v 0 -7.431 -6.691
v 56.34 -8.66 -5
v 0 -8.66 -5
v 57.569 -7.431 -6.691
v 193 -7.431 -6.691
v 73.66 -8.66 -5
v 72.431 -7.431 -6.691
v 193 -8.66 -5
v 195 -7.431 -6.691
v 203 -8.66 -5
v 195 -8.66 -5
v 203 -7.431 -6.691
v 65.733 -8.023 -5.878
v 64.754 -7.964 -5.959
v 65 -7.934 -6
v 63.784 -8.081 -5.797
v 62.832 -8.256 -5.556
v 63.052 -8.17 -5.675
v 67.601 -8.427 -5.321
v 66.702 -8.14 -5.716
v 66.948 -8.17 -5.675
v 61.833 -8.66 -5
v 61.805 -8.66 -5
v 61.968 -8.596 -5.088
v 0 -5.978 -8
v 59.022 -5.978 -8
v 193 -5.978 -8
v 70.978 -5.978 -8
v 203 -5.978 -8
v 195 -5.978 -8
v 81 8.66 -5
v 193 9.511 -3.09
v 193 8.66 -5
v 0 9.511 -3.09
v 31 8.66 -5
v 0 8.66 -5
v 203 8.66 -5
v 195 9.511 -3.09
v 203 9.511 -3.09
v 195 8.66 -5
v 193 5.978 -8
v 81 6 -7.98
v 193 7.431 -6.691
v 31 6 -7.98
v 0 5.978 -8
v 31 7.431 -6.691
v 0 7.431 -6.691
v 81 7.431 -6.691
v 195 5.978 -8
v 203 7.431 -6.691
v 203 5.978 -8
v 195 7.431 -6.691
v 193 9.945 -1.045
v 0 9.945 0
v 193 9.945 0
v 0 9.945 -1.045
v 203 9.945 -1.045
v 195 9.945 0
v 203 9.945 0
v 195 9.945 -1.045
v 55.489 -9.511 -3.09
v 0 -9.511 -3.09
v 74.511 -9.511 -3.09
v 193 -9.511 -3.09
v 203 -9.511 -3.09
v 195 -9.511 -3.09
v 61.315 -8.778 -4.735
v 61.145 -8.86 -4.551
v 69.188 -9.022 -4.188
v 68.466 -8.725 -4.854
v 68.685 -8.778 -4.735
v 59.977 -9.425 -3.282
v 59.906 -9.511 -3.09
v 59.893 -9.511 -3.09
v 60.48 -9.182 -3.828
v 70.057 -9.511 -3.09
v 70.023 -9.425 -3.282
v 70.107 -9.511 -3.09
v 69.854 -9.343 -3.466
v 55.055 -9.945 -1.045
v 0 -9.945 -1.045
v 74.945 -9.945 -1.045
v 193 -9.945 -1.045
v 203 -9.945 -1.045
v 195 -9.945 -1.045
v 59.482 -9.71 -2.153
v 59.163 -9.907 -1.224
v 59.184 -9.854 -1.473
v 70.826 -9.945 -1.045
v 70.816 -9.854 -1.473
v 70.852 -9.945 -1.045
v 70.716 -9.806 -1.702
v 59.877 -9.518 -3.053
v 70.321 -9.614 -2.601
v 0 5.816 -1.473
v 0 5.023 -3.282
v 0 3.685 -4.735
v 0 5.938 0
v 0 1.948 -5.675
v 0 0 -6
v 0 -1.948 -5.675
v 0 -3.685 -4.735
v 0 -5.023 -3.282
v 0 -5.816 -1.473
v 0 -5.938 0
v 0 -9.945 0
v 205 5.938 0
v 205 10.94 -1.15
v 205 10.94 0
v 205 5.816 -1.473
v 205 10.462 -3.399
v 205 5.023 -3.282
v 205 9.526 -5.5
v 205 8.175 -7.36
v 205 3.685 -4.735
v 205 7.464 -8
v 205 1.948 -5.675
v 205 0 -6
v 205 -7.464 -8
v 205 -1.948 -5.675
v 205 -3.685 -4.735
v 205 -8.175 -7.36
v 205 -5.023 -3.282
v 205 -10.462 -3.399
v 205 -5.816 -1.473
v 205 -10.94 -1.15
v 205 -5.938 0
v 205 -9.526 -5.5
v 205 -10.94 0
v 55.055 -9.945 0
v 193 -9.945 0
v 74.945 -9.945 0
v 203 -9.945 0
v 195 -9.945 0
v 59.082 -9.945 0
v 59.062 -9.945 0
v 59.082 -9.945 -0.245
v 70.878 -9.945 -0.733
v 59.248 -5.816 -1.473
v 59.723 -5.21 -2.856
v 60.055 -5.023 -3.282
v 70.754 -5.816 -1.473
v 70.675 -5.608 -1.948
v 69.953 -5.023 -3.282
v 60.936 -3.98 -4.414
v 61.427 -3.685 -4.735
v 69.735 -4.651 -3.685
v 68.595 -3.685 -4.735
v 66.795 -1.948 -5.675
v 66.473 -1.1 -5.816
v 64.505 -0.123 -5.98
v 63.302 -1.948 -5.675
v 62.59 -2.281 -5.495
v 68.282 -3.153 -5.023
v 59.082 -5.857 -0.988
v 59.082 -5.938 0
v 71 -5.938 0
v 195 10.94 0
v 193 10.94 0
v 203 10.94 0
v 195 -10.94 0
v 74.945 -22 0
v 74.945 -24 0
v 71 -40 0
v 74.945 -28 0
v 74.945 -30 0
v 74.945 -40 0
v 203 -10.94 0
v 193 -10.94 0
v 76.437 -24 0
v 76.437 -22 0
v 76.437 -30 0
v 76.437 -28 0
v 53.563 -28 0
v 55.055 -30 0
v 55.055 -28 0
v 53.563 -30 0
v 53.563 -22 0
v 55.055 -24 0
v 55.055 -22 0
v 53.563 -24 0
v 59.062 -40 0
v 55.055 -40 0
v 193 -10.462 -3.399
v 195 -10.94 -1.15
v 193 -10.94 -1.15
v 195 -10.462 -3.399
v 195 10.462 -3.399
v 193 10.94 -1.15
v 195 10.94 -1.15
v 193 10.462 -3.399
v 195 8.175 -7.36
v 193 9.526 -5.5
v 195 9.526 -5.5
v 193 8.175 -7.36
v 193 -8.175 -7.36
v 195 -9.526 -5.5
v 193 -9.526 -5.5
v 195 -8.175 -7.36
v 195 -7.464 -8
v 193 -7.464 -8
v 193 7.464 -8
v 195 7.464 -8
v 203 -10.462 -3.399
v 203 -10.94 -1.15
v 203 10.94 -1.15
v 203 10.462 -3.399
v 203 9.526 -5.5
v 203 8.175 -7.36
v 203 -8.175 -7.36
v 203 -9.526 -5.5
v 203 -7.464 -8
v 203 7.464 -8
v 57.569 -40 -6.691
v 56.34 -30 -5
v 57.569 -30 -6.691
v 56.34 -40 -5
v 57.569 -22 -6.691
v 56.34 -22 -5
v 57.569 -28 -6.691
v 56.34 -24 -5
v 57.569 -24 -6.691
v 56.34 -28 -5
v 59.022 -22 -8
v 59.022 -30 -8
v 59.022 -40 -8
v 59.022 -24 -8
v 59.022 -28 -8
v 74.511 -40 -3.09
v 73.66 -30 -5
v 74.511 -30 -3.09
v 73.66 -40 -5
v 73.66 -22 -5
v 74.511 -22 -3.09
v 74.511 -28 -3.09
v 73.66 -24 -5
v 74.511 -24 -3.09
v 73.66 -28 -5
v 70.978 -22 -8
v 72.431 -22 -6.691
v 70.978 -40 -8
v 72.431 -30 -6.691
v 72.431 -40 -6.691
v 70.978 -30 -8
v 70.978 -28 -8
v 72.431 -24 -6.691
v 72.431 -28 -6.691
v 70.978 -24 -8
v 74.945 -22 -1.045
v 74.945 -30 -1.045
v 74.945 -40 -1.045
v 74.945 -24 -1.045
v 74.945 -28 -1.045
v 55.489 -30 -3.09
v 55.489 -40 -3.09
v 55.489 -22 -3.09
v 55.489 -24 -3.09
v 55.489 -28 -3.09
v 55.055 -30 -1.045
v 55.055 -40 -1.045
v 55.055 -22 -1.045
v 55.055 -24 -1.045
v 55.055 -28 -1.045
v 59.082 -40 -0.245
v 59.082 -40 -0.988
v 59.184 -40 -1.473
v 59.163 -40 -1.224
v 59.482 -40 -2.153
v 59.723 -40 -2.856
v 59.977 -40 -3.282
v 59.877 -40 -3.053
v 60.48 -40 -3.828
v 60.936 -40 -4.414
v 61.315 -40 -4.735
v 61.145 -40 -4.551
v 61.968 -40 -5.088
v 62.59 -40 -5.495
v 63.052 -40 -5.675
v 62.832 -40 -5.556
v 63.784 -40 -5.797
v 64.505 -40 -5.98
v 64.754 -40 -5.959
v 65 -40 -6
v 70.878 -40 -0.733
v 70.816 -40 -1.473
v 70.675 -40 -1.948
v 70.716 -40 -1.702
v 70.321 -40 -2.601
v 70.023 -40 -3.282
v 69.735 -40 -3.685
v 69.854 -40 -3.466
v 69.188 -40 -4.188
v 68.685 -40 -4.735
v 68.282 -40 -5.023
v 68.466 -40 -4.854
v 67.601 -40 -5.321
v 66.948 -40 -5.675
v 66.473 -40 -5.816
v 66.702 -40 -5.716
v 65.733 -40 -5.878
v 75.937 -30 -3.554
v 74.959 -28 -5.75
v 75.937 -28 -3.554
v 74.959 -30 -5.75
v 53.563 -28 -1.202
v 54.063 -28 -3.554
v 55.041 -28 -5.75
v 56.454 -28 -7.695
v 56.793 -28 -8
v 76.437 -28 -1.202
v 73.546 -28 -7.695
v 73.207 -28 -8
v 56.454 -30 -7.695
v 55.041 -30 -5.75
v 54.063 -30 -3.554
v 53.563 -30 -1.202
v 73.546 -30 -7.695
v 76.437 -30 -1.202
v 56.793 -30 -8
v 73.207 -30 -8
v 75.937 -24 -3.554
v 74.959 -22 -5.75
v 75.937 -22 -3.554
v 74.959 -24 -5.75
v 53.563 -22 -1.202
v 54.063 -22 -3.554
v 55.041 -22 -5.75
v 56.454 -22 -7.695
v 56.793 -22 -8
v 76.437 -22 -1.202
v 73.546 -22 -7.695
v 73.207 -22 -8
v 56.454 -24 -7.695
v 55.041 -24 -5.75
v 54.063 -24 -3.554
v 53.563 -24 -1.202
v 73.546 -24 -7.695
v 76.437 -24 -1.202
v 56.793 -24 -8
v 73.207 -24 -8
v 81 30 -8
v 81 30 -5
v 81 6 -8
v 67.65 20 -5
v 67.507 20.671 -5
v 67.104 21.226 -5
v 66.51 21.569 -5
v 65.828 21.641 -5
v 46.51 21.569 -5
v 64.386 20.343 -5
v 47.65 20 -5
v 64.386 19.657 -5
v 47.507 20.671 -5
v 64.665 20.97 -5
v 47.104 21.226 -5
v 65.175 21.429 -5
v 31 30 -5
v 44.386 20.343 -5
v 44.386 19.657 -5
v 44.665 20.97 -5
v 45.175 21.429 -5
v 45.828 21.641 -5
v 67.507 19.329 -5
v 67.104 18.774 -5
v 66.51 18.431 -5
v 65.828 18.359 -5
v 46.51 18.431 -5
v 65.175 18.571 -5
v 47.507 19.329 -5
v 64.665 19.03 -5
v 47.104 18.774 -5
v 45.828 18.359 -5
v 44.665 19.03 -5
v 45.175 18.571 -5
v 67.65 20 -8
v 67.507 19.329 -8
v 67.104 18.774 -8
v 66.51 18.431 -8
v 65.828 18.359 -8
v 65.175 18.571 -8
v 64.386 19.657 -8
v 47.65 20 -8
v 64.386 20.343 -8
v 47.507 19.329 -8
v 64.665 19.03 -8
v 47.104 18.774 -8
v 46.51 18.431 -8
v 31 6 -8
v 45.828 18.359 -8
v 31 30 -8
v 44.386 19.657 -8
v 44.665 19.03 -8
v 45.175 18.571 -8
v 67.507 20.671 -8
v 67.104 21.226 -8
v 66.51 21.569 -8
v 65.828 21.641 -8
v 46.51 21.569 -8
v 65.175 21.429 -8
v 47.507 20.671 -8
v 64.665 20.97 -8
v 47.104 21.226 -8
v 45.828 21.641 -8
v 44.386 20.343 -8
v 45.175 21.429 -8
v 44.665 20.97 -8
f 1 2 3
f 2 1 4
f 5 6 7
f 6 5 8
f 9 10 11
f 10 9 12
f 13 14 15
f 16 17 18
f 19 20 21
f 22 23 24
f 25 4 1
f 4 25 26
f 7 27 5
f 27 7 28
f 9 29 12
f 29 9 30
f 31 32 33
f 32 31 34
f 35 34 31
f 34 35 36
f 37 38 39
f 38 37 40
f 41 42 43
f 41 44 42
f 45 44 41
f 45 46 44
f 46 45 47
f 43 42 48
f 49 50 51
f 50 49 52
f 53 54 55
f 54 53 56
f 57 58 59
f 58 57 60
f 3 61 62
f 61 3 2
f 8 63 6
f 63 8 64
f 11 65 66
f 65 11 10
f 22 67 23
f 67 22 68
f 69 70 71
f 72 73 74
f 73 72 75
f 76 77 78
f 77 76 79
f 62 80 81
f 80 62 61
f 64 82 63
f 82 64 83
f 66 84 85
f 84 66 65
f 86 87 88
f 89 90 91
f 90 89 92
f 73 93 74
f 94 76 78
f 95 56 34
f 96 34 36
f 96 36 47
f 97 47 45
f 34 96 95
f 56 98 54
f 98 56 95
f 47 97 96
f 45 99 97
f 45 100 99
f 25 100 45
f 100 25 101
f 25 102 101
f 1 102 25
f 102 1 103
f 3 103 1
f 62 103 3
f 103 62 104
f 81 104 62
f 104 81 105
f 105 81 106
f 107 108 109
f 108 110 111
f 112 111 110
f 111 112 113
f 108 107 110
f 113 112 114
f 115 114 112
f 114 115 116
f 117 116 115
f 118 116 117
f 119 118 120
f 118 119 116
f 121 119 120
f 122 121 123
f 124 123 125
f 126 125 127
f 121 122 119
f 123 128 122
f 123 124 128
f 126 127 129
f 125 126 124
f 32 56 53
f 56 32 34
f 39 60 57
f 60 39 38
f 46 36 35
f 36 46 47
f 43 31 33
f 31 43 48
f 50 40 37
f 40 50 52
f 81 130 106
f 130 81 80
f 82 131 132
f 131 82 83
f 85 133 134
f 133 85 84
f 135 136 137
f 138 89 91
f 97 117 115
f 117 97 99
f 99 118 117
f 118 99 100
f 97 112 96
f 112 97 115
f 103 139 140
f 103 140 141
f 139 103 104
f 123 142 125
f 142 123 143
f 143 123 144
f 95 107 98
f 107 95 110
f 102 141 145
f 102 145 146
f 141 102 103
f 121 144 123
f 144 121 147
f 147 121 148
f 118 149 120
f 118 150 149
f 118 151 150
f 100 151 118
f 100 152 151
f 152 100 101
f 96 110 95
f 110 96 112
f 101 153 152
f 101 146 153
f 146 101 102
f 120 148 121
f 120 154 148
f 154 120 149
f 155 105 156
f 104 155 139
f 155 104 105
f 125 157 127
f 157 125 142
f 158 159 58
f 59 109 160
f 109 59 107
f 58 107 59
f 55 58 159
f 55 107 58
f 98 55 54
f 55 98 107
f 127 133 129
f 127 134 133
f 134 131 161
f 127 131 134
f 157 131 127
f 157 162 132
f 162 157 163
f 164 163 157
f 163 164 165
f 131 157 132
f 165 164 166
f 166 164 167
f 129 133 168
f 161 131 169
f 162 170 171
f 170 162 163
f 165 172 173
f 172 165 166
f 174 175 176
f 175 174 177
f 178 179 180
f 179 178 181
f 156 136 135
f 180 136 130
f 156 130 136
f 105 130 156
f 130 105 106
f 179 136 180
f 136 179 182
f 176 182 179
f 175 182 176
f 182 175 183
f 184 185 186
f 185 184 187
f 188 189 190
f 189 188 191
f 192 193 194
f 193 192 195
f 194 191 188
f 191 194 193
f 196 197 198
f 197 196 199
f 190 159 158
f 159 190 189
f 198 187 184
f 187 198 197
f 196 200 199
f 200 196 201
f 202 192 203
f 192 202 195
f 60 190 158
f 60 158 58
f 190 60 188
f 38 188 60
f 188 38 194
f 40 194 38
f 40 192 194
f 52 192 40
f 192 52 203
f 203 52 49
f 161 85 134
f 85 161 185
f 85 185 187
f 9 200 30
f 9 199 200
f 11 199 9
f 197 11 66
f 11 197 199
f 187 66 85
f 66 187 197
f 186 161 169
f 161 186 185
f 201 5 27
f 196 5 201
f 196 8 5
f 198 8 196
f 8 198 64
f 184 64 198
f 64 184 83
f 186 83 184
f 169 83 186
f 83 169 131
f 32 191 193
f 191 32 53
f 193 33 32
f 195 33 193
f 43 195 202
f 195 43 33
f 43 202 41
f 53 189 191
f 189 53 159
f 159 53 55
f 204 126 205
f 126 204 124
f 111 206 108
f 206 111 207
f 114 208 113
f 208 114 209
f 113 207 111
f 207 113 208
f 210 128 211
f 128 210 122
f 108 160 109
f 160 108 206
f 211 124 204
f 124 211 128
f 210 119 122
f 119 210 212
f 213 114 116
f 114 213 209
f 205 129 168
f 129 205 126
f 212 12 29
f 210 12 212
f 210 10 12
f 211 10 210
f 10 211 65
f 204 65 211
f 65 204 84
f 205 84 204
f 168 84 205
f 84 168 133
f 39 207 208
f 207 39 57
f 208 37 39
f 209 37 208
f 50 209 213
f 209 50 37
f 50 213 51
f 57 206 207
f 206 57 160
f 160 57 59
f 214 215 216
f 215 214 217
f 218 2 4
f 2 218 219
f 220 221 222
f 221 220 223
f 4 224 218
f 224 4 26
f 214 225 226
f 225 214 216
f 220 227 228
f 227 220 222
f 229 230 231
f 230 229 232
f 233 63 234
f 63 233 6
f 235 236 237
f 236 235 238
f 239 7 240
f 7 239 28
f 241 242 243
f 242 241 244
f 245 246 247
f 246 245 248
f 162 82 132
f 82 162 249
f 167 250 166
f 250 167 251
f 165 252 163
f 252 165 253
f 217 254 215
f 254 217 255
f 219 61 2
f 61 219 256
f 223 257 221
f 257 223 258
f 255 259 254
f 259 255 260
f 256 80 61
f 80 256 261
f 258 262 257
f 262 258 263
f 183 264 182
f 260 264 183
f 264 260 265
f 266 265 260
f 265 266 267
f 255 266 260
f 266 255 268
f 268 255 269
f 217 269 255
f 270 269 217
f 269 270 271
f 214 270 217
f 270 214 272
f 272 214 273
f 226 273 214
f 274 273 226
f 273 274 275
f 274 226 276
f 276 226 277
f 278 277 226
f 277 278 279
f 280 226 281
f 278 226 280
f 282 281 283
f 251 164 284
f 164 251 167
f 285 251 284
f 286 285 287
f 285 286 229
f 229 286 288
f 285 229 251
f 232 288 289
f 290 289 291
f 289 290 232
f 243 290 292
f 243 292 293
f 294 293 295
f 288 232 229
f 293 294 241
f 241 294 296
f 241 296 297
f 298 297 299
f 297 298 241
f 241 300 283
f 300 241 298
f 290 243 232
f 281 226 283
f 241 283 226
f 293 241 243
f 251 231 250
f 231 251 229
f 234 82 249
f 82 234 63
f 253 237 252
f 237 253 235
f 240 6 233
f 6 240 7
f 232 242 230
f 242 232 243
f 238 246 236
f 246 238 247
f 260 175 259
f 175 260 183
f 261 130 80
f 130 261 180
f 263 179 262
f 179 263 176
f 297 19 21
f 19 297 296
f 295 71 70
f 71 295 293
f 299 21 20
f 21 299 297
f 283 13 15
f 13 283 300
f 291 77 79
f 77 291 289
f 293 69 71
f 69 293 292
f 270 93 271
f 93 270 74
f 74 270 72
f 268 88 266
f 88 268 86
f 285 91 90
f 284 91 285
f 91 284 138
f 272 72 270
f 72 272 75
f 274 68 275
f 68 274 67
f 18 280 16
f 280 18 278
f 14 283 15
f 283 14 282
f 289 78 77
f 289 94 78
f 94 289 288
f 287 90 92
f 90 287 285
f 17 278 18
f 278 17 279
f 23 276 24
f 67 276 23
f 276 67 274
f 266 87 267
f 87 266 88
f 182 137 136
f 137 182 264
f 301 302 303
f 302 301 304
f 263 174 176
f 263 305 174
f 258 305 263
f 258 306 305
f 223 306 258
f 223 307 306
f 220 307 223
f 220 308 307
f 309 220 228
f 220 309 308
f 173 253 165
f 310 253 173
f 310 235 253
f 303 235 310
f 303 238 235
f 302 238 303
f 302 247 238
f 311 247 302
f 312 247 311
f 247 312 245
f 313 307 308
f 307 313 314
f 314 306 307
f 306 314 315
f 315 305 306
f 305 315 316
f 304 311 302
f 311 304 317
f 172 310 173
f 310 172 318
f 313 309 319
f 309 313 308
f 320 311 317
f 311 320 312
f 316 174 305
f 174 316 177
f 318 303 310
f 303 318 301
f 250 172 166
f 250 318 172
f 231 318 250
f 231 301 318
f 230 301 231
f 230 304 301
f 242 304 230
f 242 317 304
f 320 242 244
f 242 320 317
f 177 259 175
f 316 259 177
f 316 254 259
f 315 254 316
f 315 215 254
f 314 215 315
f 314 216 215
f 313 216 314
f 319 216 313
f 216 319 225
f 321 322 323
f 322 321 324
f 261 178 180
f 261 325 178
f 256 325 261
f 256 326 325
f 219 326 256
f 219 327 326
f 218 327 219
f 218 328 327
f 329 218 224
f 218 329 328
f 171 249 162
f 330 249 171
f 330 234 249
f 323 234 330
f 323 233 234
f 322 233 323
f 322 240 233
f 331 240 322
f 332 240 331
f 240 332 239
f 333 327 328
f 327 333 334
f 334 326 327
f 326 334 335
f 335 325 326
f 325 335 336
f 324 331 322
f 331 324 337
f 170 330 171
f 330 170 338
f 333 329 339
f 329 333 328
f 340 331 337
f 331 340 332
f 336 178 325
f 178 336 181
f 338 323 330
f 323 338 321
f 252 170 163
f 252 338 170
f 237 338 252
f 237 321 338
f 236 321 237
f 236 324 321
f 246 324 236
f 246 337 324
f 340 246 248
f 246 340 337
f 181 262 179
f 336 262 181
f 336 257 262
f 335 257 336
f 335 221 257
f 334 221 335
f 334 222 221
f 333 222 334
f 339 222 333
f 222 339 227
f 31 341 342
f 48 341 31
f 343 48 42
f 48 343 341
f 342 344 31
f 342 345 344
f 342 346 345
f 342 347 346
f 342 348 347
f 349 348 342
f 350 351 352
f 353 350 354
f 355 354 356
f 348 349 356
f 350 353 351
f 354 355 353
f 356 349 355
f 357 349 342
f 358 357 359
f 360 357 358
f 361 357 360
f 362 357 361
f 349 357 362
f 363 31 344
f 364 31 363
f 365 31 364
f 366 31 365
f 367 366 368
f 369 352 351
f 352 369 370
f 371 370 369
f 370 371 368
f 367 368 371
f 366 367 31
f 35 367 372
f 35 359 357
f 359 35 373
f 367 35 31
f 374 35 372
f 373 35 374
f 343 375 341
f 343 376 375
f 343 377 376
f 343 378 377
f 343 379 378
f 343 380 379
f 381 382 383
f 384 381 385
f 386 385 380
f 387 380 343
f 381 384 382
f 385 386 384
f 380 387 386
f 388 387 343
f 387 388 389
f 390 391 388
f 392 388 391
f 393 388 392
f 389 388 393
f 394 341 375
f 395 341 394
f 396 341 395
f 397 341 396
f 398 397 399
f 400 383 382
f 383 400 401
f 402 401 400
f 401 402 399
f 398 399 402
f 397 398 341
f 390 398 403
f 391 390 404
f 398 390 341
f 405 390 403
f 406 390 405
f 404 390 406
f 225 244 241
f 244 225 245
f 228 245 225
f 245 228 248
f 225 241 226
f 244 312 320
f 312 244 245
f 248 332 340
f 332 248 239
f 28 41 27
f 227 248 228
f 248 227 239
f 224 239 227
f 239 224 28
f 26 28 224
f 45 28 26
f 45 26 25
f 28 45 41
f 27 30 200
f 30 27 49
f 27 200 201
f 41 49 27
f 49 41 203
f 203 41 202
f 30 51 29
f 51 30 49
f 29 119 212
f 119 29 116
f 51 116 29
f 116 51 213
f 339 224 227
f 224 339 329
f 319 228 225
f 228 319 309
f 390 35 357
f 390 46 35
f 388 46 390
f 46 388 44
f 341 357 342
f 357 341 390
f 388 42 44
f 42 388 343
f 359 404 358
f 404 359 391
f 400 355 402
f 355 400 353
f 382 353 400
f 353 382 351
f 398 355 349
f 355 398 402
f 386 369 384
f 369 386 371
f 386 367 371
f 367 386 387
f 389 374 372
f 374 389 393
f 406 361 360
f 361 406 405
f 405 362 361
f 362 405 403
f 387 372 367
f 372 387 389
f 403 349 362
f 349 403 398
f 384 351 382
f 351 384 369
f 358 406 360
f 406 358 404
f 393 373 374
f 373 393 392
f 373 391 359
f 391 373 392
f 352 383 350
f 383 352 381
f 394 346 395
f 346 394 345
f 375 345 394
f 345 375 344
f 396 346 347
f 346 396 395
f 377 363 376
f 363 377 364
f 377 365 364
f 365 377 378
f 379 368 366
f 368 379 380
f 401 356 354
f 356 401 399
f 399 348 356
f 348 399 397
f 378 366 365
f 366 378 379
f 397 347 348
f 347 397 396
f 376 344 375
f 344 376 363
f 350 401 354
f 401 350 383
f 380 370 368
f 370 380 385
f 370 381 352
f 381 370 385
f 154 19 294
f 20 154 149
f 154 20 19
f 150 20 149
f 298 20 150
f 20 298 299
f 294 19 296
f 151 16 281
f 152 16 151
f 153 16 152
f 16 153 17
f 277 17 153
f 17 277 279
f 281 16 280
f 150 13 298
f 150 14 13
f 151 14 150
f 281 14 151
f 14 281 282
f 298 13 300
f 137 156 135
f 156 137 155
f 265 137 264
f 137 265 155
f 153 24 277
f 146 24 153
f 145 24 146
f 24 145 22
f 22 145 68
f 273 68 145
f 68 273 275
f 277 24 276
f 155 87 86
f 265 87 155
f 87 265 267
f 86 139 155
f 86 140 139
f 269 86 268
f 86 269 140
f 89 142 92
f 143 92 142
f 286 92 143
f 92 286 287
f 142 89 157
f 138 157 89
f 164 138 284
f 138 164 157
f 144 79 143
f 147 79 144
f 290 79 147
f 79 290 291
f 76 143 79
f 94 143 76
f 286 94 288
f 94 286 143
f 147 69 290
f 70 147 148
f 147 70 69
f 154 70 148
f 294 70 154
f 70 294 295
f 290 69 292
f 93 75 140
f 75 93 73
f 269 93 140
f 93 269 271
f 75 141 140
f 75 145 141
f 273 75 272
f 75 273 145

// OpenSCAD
// file: common_wire_mount.scad
/* Common code for wiring mounts. See top_wire_mount.scad and 
 * bottom_wire_mount.scad for the model.
 * Copyright 2021 Alex Volkov <alex@flamy.ca>
 * License: Attribution-ShareAlike 4.0 International (CC BY-SA)
 * https://creativecommons.org/licenses/by-sa/4.0/
 *
 * Version 1.0 2021-04-10 Initial publication
 */


m3_bolt_d = 3.3;

module cable_mount(cable_len, out_d, in_d){
    rotate([0, 90, 0 ]){
    difference(){
        cylinder(d=out_d, h=cable_len);
        cylinder(d=in_d, h=cable_len);
        translate([-out_d/2, 0, cable_len/2])
            cube([out_d, out_d, cable_len], center=true);
        }
    }
}


module plate_mount_top(y_offset, thickness=2){
    difference(){
        translate([-5, 0, 0]){
            cube([50, 25, thickness]);
            cube([15, 7, thickness*2]);
            translate([35, 0, 0, ])
                cube([15, 7, thickness*2]);
        }
        translate([10, y_offset, 0])
            cylinder(d=m3_bolt_d, h=10, $fn=15);
        translate([30, y_offset, 0])
            cylinder(d=m3_bolt_d, h=10, $fn=15);
    }
    
}

module plate_mount(y_offset, thickness=2){
    difference(){
        translate([-5, 0, 0]) cube([50, 24, thickness]);
        translate([10, y_offset, 0])
            cylinder(d=m3_bolt_d, h=10, $fn=15);
        translate([30, y_offset, 0])
            cylinder(d=m3_bolt_d, h=10, $fn=15);
    }
    
}
// main file
/* Bottom wire mount for MKS GEN 1.4 for wiring heated bed and power cables
 * Copyright 2021 Alex Volkov <alex@flamy.ca>
 * License: Attribution-ShareAlike 4.0 International (CC BY-SA)
 * https://creativecommons.org/licenses/by-sa/4.0/
 *
 * Version 1.0 2021-04-10 Initial publication
 */
 
include <common_wire_mount.scad>



module bottom_wire_holder(){
    inner_pipe_d = 12;
    outer_d = 20;
    vert_pipe_offset = 65;
    vert_pipe_len = 40;
    heated_bed_connector = 205;
    bottom_shave_offset = 2;
    difference(){
        union(){
            cable_mount(heated_bed_connector, outer_d, inner_pipe_d);
            translate([heated_bed_connector - 12, 0, 0])
                cable_mount(2, outer_d+2, inner_pipe_d);
            translate([heated_bed_connector - 2 , 0, 0])
                cable_mount(2, outer_d+2, inner_pipe_d);
            // vertical pipe #1
            translate([vert_pipe_offset, 0 , 0]){
                rotate([0,0,270]){
                    cable_mount(vert_pipe_len, outer_d , inner_pipe_d);
                    translate([28, 0, 0])
                        cable_mount(2, outer_d + 3, inner_pipe_d + 5);
                    translate([22, 0, 0])
                        cable_mount(2, outer_d + 3, inner_pipe_d + 5);
                }
            }
            // vertical pipe #2
            /*
            pipe_2 = 60;
            translate([vert_pipe_offset + 60, 0 , 0]){
                rotate([0,0,270]){
                    cable_mount(pipe_2, outer_d, inner_pipe_d);
                    translate([pipe_2, 0, 0])
                        cable_mount(2, outer_d+2, inner_pipe_d);
                    translate([pipe_2 - 10, 0, 0])
                        cable_mount(2, outer_d+2, inner_pipe_d);
                }
            }
            */
            translate([36, 6, -outer_d/2 + 2])
                plate_mount(14, 3);
        }
        // horizontal cutout
        rotate([0, 90, 0 ])
            cylinder(d=inner_pipe_d, h=heated_bed_connector);
        // vertical pipe cutout #1
        
        translate([vert_pipe_offset, 0, 0])
            rotate([90, 0, 0 ])
                cylinder(d=inner_pipe_d, h=vert_pipe_len);
        // vertical pipe cutout #2
        /*
        translate([vert_pipe_offset + 60, 20, 0])
            rotate([90, 0, 0 ])
                cylinder(d=inner_pipe_d, h=heated_bed_connector);
        */
        //shave off bottom
        
        translate([0, -70, -outer_d + bottom_shave_offset])
            cube([heated_bed_connector, 100, 10]);
        
    }
}

bottom_wire_holder();
